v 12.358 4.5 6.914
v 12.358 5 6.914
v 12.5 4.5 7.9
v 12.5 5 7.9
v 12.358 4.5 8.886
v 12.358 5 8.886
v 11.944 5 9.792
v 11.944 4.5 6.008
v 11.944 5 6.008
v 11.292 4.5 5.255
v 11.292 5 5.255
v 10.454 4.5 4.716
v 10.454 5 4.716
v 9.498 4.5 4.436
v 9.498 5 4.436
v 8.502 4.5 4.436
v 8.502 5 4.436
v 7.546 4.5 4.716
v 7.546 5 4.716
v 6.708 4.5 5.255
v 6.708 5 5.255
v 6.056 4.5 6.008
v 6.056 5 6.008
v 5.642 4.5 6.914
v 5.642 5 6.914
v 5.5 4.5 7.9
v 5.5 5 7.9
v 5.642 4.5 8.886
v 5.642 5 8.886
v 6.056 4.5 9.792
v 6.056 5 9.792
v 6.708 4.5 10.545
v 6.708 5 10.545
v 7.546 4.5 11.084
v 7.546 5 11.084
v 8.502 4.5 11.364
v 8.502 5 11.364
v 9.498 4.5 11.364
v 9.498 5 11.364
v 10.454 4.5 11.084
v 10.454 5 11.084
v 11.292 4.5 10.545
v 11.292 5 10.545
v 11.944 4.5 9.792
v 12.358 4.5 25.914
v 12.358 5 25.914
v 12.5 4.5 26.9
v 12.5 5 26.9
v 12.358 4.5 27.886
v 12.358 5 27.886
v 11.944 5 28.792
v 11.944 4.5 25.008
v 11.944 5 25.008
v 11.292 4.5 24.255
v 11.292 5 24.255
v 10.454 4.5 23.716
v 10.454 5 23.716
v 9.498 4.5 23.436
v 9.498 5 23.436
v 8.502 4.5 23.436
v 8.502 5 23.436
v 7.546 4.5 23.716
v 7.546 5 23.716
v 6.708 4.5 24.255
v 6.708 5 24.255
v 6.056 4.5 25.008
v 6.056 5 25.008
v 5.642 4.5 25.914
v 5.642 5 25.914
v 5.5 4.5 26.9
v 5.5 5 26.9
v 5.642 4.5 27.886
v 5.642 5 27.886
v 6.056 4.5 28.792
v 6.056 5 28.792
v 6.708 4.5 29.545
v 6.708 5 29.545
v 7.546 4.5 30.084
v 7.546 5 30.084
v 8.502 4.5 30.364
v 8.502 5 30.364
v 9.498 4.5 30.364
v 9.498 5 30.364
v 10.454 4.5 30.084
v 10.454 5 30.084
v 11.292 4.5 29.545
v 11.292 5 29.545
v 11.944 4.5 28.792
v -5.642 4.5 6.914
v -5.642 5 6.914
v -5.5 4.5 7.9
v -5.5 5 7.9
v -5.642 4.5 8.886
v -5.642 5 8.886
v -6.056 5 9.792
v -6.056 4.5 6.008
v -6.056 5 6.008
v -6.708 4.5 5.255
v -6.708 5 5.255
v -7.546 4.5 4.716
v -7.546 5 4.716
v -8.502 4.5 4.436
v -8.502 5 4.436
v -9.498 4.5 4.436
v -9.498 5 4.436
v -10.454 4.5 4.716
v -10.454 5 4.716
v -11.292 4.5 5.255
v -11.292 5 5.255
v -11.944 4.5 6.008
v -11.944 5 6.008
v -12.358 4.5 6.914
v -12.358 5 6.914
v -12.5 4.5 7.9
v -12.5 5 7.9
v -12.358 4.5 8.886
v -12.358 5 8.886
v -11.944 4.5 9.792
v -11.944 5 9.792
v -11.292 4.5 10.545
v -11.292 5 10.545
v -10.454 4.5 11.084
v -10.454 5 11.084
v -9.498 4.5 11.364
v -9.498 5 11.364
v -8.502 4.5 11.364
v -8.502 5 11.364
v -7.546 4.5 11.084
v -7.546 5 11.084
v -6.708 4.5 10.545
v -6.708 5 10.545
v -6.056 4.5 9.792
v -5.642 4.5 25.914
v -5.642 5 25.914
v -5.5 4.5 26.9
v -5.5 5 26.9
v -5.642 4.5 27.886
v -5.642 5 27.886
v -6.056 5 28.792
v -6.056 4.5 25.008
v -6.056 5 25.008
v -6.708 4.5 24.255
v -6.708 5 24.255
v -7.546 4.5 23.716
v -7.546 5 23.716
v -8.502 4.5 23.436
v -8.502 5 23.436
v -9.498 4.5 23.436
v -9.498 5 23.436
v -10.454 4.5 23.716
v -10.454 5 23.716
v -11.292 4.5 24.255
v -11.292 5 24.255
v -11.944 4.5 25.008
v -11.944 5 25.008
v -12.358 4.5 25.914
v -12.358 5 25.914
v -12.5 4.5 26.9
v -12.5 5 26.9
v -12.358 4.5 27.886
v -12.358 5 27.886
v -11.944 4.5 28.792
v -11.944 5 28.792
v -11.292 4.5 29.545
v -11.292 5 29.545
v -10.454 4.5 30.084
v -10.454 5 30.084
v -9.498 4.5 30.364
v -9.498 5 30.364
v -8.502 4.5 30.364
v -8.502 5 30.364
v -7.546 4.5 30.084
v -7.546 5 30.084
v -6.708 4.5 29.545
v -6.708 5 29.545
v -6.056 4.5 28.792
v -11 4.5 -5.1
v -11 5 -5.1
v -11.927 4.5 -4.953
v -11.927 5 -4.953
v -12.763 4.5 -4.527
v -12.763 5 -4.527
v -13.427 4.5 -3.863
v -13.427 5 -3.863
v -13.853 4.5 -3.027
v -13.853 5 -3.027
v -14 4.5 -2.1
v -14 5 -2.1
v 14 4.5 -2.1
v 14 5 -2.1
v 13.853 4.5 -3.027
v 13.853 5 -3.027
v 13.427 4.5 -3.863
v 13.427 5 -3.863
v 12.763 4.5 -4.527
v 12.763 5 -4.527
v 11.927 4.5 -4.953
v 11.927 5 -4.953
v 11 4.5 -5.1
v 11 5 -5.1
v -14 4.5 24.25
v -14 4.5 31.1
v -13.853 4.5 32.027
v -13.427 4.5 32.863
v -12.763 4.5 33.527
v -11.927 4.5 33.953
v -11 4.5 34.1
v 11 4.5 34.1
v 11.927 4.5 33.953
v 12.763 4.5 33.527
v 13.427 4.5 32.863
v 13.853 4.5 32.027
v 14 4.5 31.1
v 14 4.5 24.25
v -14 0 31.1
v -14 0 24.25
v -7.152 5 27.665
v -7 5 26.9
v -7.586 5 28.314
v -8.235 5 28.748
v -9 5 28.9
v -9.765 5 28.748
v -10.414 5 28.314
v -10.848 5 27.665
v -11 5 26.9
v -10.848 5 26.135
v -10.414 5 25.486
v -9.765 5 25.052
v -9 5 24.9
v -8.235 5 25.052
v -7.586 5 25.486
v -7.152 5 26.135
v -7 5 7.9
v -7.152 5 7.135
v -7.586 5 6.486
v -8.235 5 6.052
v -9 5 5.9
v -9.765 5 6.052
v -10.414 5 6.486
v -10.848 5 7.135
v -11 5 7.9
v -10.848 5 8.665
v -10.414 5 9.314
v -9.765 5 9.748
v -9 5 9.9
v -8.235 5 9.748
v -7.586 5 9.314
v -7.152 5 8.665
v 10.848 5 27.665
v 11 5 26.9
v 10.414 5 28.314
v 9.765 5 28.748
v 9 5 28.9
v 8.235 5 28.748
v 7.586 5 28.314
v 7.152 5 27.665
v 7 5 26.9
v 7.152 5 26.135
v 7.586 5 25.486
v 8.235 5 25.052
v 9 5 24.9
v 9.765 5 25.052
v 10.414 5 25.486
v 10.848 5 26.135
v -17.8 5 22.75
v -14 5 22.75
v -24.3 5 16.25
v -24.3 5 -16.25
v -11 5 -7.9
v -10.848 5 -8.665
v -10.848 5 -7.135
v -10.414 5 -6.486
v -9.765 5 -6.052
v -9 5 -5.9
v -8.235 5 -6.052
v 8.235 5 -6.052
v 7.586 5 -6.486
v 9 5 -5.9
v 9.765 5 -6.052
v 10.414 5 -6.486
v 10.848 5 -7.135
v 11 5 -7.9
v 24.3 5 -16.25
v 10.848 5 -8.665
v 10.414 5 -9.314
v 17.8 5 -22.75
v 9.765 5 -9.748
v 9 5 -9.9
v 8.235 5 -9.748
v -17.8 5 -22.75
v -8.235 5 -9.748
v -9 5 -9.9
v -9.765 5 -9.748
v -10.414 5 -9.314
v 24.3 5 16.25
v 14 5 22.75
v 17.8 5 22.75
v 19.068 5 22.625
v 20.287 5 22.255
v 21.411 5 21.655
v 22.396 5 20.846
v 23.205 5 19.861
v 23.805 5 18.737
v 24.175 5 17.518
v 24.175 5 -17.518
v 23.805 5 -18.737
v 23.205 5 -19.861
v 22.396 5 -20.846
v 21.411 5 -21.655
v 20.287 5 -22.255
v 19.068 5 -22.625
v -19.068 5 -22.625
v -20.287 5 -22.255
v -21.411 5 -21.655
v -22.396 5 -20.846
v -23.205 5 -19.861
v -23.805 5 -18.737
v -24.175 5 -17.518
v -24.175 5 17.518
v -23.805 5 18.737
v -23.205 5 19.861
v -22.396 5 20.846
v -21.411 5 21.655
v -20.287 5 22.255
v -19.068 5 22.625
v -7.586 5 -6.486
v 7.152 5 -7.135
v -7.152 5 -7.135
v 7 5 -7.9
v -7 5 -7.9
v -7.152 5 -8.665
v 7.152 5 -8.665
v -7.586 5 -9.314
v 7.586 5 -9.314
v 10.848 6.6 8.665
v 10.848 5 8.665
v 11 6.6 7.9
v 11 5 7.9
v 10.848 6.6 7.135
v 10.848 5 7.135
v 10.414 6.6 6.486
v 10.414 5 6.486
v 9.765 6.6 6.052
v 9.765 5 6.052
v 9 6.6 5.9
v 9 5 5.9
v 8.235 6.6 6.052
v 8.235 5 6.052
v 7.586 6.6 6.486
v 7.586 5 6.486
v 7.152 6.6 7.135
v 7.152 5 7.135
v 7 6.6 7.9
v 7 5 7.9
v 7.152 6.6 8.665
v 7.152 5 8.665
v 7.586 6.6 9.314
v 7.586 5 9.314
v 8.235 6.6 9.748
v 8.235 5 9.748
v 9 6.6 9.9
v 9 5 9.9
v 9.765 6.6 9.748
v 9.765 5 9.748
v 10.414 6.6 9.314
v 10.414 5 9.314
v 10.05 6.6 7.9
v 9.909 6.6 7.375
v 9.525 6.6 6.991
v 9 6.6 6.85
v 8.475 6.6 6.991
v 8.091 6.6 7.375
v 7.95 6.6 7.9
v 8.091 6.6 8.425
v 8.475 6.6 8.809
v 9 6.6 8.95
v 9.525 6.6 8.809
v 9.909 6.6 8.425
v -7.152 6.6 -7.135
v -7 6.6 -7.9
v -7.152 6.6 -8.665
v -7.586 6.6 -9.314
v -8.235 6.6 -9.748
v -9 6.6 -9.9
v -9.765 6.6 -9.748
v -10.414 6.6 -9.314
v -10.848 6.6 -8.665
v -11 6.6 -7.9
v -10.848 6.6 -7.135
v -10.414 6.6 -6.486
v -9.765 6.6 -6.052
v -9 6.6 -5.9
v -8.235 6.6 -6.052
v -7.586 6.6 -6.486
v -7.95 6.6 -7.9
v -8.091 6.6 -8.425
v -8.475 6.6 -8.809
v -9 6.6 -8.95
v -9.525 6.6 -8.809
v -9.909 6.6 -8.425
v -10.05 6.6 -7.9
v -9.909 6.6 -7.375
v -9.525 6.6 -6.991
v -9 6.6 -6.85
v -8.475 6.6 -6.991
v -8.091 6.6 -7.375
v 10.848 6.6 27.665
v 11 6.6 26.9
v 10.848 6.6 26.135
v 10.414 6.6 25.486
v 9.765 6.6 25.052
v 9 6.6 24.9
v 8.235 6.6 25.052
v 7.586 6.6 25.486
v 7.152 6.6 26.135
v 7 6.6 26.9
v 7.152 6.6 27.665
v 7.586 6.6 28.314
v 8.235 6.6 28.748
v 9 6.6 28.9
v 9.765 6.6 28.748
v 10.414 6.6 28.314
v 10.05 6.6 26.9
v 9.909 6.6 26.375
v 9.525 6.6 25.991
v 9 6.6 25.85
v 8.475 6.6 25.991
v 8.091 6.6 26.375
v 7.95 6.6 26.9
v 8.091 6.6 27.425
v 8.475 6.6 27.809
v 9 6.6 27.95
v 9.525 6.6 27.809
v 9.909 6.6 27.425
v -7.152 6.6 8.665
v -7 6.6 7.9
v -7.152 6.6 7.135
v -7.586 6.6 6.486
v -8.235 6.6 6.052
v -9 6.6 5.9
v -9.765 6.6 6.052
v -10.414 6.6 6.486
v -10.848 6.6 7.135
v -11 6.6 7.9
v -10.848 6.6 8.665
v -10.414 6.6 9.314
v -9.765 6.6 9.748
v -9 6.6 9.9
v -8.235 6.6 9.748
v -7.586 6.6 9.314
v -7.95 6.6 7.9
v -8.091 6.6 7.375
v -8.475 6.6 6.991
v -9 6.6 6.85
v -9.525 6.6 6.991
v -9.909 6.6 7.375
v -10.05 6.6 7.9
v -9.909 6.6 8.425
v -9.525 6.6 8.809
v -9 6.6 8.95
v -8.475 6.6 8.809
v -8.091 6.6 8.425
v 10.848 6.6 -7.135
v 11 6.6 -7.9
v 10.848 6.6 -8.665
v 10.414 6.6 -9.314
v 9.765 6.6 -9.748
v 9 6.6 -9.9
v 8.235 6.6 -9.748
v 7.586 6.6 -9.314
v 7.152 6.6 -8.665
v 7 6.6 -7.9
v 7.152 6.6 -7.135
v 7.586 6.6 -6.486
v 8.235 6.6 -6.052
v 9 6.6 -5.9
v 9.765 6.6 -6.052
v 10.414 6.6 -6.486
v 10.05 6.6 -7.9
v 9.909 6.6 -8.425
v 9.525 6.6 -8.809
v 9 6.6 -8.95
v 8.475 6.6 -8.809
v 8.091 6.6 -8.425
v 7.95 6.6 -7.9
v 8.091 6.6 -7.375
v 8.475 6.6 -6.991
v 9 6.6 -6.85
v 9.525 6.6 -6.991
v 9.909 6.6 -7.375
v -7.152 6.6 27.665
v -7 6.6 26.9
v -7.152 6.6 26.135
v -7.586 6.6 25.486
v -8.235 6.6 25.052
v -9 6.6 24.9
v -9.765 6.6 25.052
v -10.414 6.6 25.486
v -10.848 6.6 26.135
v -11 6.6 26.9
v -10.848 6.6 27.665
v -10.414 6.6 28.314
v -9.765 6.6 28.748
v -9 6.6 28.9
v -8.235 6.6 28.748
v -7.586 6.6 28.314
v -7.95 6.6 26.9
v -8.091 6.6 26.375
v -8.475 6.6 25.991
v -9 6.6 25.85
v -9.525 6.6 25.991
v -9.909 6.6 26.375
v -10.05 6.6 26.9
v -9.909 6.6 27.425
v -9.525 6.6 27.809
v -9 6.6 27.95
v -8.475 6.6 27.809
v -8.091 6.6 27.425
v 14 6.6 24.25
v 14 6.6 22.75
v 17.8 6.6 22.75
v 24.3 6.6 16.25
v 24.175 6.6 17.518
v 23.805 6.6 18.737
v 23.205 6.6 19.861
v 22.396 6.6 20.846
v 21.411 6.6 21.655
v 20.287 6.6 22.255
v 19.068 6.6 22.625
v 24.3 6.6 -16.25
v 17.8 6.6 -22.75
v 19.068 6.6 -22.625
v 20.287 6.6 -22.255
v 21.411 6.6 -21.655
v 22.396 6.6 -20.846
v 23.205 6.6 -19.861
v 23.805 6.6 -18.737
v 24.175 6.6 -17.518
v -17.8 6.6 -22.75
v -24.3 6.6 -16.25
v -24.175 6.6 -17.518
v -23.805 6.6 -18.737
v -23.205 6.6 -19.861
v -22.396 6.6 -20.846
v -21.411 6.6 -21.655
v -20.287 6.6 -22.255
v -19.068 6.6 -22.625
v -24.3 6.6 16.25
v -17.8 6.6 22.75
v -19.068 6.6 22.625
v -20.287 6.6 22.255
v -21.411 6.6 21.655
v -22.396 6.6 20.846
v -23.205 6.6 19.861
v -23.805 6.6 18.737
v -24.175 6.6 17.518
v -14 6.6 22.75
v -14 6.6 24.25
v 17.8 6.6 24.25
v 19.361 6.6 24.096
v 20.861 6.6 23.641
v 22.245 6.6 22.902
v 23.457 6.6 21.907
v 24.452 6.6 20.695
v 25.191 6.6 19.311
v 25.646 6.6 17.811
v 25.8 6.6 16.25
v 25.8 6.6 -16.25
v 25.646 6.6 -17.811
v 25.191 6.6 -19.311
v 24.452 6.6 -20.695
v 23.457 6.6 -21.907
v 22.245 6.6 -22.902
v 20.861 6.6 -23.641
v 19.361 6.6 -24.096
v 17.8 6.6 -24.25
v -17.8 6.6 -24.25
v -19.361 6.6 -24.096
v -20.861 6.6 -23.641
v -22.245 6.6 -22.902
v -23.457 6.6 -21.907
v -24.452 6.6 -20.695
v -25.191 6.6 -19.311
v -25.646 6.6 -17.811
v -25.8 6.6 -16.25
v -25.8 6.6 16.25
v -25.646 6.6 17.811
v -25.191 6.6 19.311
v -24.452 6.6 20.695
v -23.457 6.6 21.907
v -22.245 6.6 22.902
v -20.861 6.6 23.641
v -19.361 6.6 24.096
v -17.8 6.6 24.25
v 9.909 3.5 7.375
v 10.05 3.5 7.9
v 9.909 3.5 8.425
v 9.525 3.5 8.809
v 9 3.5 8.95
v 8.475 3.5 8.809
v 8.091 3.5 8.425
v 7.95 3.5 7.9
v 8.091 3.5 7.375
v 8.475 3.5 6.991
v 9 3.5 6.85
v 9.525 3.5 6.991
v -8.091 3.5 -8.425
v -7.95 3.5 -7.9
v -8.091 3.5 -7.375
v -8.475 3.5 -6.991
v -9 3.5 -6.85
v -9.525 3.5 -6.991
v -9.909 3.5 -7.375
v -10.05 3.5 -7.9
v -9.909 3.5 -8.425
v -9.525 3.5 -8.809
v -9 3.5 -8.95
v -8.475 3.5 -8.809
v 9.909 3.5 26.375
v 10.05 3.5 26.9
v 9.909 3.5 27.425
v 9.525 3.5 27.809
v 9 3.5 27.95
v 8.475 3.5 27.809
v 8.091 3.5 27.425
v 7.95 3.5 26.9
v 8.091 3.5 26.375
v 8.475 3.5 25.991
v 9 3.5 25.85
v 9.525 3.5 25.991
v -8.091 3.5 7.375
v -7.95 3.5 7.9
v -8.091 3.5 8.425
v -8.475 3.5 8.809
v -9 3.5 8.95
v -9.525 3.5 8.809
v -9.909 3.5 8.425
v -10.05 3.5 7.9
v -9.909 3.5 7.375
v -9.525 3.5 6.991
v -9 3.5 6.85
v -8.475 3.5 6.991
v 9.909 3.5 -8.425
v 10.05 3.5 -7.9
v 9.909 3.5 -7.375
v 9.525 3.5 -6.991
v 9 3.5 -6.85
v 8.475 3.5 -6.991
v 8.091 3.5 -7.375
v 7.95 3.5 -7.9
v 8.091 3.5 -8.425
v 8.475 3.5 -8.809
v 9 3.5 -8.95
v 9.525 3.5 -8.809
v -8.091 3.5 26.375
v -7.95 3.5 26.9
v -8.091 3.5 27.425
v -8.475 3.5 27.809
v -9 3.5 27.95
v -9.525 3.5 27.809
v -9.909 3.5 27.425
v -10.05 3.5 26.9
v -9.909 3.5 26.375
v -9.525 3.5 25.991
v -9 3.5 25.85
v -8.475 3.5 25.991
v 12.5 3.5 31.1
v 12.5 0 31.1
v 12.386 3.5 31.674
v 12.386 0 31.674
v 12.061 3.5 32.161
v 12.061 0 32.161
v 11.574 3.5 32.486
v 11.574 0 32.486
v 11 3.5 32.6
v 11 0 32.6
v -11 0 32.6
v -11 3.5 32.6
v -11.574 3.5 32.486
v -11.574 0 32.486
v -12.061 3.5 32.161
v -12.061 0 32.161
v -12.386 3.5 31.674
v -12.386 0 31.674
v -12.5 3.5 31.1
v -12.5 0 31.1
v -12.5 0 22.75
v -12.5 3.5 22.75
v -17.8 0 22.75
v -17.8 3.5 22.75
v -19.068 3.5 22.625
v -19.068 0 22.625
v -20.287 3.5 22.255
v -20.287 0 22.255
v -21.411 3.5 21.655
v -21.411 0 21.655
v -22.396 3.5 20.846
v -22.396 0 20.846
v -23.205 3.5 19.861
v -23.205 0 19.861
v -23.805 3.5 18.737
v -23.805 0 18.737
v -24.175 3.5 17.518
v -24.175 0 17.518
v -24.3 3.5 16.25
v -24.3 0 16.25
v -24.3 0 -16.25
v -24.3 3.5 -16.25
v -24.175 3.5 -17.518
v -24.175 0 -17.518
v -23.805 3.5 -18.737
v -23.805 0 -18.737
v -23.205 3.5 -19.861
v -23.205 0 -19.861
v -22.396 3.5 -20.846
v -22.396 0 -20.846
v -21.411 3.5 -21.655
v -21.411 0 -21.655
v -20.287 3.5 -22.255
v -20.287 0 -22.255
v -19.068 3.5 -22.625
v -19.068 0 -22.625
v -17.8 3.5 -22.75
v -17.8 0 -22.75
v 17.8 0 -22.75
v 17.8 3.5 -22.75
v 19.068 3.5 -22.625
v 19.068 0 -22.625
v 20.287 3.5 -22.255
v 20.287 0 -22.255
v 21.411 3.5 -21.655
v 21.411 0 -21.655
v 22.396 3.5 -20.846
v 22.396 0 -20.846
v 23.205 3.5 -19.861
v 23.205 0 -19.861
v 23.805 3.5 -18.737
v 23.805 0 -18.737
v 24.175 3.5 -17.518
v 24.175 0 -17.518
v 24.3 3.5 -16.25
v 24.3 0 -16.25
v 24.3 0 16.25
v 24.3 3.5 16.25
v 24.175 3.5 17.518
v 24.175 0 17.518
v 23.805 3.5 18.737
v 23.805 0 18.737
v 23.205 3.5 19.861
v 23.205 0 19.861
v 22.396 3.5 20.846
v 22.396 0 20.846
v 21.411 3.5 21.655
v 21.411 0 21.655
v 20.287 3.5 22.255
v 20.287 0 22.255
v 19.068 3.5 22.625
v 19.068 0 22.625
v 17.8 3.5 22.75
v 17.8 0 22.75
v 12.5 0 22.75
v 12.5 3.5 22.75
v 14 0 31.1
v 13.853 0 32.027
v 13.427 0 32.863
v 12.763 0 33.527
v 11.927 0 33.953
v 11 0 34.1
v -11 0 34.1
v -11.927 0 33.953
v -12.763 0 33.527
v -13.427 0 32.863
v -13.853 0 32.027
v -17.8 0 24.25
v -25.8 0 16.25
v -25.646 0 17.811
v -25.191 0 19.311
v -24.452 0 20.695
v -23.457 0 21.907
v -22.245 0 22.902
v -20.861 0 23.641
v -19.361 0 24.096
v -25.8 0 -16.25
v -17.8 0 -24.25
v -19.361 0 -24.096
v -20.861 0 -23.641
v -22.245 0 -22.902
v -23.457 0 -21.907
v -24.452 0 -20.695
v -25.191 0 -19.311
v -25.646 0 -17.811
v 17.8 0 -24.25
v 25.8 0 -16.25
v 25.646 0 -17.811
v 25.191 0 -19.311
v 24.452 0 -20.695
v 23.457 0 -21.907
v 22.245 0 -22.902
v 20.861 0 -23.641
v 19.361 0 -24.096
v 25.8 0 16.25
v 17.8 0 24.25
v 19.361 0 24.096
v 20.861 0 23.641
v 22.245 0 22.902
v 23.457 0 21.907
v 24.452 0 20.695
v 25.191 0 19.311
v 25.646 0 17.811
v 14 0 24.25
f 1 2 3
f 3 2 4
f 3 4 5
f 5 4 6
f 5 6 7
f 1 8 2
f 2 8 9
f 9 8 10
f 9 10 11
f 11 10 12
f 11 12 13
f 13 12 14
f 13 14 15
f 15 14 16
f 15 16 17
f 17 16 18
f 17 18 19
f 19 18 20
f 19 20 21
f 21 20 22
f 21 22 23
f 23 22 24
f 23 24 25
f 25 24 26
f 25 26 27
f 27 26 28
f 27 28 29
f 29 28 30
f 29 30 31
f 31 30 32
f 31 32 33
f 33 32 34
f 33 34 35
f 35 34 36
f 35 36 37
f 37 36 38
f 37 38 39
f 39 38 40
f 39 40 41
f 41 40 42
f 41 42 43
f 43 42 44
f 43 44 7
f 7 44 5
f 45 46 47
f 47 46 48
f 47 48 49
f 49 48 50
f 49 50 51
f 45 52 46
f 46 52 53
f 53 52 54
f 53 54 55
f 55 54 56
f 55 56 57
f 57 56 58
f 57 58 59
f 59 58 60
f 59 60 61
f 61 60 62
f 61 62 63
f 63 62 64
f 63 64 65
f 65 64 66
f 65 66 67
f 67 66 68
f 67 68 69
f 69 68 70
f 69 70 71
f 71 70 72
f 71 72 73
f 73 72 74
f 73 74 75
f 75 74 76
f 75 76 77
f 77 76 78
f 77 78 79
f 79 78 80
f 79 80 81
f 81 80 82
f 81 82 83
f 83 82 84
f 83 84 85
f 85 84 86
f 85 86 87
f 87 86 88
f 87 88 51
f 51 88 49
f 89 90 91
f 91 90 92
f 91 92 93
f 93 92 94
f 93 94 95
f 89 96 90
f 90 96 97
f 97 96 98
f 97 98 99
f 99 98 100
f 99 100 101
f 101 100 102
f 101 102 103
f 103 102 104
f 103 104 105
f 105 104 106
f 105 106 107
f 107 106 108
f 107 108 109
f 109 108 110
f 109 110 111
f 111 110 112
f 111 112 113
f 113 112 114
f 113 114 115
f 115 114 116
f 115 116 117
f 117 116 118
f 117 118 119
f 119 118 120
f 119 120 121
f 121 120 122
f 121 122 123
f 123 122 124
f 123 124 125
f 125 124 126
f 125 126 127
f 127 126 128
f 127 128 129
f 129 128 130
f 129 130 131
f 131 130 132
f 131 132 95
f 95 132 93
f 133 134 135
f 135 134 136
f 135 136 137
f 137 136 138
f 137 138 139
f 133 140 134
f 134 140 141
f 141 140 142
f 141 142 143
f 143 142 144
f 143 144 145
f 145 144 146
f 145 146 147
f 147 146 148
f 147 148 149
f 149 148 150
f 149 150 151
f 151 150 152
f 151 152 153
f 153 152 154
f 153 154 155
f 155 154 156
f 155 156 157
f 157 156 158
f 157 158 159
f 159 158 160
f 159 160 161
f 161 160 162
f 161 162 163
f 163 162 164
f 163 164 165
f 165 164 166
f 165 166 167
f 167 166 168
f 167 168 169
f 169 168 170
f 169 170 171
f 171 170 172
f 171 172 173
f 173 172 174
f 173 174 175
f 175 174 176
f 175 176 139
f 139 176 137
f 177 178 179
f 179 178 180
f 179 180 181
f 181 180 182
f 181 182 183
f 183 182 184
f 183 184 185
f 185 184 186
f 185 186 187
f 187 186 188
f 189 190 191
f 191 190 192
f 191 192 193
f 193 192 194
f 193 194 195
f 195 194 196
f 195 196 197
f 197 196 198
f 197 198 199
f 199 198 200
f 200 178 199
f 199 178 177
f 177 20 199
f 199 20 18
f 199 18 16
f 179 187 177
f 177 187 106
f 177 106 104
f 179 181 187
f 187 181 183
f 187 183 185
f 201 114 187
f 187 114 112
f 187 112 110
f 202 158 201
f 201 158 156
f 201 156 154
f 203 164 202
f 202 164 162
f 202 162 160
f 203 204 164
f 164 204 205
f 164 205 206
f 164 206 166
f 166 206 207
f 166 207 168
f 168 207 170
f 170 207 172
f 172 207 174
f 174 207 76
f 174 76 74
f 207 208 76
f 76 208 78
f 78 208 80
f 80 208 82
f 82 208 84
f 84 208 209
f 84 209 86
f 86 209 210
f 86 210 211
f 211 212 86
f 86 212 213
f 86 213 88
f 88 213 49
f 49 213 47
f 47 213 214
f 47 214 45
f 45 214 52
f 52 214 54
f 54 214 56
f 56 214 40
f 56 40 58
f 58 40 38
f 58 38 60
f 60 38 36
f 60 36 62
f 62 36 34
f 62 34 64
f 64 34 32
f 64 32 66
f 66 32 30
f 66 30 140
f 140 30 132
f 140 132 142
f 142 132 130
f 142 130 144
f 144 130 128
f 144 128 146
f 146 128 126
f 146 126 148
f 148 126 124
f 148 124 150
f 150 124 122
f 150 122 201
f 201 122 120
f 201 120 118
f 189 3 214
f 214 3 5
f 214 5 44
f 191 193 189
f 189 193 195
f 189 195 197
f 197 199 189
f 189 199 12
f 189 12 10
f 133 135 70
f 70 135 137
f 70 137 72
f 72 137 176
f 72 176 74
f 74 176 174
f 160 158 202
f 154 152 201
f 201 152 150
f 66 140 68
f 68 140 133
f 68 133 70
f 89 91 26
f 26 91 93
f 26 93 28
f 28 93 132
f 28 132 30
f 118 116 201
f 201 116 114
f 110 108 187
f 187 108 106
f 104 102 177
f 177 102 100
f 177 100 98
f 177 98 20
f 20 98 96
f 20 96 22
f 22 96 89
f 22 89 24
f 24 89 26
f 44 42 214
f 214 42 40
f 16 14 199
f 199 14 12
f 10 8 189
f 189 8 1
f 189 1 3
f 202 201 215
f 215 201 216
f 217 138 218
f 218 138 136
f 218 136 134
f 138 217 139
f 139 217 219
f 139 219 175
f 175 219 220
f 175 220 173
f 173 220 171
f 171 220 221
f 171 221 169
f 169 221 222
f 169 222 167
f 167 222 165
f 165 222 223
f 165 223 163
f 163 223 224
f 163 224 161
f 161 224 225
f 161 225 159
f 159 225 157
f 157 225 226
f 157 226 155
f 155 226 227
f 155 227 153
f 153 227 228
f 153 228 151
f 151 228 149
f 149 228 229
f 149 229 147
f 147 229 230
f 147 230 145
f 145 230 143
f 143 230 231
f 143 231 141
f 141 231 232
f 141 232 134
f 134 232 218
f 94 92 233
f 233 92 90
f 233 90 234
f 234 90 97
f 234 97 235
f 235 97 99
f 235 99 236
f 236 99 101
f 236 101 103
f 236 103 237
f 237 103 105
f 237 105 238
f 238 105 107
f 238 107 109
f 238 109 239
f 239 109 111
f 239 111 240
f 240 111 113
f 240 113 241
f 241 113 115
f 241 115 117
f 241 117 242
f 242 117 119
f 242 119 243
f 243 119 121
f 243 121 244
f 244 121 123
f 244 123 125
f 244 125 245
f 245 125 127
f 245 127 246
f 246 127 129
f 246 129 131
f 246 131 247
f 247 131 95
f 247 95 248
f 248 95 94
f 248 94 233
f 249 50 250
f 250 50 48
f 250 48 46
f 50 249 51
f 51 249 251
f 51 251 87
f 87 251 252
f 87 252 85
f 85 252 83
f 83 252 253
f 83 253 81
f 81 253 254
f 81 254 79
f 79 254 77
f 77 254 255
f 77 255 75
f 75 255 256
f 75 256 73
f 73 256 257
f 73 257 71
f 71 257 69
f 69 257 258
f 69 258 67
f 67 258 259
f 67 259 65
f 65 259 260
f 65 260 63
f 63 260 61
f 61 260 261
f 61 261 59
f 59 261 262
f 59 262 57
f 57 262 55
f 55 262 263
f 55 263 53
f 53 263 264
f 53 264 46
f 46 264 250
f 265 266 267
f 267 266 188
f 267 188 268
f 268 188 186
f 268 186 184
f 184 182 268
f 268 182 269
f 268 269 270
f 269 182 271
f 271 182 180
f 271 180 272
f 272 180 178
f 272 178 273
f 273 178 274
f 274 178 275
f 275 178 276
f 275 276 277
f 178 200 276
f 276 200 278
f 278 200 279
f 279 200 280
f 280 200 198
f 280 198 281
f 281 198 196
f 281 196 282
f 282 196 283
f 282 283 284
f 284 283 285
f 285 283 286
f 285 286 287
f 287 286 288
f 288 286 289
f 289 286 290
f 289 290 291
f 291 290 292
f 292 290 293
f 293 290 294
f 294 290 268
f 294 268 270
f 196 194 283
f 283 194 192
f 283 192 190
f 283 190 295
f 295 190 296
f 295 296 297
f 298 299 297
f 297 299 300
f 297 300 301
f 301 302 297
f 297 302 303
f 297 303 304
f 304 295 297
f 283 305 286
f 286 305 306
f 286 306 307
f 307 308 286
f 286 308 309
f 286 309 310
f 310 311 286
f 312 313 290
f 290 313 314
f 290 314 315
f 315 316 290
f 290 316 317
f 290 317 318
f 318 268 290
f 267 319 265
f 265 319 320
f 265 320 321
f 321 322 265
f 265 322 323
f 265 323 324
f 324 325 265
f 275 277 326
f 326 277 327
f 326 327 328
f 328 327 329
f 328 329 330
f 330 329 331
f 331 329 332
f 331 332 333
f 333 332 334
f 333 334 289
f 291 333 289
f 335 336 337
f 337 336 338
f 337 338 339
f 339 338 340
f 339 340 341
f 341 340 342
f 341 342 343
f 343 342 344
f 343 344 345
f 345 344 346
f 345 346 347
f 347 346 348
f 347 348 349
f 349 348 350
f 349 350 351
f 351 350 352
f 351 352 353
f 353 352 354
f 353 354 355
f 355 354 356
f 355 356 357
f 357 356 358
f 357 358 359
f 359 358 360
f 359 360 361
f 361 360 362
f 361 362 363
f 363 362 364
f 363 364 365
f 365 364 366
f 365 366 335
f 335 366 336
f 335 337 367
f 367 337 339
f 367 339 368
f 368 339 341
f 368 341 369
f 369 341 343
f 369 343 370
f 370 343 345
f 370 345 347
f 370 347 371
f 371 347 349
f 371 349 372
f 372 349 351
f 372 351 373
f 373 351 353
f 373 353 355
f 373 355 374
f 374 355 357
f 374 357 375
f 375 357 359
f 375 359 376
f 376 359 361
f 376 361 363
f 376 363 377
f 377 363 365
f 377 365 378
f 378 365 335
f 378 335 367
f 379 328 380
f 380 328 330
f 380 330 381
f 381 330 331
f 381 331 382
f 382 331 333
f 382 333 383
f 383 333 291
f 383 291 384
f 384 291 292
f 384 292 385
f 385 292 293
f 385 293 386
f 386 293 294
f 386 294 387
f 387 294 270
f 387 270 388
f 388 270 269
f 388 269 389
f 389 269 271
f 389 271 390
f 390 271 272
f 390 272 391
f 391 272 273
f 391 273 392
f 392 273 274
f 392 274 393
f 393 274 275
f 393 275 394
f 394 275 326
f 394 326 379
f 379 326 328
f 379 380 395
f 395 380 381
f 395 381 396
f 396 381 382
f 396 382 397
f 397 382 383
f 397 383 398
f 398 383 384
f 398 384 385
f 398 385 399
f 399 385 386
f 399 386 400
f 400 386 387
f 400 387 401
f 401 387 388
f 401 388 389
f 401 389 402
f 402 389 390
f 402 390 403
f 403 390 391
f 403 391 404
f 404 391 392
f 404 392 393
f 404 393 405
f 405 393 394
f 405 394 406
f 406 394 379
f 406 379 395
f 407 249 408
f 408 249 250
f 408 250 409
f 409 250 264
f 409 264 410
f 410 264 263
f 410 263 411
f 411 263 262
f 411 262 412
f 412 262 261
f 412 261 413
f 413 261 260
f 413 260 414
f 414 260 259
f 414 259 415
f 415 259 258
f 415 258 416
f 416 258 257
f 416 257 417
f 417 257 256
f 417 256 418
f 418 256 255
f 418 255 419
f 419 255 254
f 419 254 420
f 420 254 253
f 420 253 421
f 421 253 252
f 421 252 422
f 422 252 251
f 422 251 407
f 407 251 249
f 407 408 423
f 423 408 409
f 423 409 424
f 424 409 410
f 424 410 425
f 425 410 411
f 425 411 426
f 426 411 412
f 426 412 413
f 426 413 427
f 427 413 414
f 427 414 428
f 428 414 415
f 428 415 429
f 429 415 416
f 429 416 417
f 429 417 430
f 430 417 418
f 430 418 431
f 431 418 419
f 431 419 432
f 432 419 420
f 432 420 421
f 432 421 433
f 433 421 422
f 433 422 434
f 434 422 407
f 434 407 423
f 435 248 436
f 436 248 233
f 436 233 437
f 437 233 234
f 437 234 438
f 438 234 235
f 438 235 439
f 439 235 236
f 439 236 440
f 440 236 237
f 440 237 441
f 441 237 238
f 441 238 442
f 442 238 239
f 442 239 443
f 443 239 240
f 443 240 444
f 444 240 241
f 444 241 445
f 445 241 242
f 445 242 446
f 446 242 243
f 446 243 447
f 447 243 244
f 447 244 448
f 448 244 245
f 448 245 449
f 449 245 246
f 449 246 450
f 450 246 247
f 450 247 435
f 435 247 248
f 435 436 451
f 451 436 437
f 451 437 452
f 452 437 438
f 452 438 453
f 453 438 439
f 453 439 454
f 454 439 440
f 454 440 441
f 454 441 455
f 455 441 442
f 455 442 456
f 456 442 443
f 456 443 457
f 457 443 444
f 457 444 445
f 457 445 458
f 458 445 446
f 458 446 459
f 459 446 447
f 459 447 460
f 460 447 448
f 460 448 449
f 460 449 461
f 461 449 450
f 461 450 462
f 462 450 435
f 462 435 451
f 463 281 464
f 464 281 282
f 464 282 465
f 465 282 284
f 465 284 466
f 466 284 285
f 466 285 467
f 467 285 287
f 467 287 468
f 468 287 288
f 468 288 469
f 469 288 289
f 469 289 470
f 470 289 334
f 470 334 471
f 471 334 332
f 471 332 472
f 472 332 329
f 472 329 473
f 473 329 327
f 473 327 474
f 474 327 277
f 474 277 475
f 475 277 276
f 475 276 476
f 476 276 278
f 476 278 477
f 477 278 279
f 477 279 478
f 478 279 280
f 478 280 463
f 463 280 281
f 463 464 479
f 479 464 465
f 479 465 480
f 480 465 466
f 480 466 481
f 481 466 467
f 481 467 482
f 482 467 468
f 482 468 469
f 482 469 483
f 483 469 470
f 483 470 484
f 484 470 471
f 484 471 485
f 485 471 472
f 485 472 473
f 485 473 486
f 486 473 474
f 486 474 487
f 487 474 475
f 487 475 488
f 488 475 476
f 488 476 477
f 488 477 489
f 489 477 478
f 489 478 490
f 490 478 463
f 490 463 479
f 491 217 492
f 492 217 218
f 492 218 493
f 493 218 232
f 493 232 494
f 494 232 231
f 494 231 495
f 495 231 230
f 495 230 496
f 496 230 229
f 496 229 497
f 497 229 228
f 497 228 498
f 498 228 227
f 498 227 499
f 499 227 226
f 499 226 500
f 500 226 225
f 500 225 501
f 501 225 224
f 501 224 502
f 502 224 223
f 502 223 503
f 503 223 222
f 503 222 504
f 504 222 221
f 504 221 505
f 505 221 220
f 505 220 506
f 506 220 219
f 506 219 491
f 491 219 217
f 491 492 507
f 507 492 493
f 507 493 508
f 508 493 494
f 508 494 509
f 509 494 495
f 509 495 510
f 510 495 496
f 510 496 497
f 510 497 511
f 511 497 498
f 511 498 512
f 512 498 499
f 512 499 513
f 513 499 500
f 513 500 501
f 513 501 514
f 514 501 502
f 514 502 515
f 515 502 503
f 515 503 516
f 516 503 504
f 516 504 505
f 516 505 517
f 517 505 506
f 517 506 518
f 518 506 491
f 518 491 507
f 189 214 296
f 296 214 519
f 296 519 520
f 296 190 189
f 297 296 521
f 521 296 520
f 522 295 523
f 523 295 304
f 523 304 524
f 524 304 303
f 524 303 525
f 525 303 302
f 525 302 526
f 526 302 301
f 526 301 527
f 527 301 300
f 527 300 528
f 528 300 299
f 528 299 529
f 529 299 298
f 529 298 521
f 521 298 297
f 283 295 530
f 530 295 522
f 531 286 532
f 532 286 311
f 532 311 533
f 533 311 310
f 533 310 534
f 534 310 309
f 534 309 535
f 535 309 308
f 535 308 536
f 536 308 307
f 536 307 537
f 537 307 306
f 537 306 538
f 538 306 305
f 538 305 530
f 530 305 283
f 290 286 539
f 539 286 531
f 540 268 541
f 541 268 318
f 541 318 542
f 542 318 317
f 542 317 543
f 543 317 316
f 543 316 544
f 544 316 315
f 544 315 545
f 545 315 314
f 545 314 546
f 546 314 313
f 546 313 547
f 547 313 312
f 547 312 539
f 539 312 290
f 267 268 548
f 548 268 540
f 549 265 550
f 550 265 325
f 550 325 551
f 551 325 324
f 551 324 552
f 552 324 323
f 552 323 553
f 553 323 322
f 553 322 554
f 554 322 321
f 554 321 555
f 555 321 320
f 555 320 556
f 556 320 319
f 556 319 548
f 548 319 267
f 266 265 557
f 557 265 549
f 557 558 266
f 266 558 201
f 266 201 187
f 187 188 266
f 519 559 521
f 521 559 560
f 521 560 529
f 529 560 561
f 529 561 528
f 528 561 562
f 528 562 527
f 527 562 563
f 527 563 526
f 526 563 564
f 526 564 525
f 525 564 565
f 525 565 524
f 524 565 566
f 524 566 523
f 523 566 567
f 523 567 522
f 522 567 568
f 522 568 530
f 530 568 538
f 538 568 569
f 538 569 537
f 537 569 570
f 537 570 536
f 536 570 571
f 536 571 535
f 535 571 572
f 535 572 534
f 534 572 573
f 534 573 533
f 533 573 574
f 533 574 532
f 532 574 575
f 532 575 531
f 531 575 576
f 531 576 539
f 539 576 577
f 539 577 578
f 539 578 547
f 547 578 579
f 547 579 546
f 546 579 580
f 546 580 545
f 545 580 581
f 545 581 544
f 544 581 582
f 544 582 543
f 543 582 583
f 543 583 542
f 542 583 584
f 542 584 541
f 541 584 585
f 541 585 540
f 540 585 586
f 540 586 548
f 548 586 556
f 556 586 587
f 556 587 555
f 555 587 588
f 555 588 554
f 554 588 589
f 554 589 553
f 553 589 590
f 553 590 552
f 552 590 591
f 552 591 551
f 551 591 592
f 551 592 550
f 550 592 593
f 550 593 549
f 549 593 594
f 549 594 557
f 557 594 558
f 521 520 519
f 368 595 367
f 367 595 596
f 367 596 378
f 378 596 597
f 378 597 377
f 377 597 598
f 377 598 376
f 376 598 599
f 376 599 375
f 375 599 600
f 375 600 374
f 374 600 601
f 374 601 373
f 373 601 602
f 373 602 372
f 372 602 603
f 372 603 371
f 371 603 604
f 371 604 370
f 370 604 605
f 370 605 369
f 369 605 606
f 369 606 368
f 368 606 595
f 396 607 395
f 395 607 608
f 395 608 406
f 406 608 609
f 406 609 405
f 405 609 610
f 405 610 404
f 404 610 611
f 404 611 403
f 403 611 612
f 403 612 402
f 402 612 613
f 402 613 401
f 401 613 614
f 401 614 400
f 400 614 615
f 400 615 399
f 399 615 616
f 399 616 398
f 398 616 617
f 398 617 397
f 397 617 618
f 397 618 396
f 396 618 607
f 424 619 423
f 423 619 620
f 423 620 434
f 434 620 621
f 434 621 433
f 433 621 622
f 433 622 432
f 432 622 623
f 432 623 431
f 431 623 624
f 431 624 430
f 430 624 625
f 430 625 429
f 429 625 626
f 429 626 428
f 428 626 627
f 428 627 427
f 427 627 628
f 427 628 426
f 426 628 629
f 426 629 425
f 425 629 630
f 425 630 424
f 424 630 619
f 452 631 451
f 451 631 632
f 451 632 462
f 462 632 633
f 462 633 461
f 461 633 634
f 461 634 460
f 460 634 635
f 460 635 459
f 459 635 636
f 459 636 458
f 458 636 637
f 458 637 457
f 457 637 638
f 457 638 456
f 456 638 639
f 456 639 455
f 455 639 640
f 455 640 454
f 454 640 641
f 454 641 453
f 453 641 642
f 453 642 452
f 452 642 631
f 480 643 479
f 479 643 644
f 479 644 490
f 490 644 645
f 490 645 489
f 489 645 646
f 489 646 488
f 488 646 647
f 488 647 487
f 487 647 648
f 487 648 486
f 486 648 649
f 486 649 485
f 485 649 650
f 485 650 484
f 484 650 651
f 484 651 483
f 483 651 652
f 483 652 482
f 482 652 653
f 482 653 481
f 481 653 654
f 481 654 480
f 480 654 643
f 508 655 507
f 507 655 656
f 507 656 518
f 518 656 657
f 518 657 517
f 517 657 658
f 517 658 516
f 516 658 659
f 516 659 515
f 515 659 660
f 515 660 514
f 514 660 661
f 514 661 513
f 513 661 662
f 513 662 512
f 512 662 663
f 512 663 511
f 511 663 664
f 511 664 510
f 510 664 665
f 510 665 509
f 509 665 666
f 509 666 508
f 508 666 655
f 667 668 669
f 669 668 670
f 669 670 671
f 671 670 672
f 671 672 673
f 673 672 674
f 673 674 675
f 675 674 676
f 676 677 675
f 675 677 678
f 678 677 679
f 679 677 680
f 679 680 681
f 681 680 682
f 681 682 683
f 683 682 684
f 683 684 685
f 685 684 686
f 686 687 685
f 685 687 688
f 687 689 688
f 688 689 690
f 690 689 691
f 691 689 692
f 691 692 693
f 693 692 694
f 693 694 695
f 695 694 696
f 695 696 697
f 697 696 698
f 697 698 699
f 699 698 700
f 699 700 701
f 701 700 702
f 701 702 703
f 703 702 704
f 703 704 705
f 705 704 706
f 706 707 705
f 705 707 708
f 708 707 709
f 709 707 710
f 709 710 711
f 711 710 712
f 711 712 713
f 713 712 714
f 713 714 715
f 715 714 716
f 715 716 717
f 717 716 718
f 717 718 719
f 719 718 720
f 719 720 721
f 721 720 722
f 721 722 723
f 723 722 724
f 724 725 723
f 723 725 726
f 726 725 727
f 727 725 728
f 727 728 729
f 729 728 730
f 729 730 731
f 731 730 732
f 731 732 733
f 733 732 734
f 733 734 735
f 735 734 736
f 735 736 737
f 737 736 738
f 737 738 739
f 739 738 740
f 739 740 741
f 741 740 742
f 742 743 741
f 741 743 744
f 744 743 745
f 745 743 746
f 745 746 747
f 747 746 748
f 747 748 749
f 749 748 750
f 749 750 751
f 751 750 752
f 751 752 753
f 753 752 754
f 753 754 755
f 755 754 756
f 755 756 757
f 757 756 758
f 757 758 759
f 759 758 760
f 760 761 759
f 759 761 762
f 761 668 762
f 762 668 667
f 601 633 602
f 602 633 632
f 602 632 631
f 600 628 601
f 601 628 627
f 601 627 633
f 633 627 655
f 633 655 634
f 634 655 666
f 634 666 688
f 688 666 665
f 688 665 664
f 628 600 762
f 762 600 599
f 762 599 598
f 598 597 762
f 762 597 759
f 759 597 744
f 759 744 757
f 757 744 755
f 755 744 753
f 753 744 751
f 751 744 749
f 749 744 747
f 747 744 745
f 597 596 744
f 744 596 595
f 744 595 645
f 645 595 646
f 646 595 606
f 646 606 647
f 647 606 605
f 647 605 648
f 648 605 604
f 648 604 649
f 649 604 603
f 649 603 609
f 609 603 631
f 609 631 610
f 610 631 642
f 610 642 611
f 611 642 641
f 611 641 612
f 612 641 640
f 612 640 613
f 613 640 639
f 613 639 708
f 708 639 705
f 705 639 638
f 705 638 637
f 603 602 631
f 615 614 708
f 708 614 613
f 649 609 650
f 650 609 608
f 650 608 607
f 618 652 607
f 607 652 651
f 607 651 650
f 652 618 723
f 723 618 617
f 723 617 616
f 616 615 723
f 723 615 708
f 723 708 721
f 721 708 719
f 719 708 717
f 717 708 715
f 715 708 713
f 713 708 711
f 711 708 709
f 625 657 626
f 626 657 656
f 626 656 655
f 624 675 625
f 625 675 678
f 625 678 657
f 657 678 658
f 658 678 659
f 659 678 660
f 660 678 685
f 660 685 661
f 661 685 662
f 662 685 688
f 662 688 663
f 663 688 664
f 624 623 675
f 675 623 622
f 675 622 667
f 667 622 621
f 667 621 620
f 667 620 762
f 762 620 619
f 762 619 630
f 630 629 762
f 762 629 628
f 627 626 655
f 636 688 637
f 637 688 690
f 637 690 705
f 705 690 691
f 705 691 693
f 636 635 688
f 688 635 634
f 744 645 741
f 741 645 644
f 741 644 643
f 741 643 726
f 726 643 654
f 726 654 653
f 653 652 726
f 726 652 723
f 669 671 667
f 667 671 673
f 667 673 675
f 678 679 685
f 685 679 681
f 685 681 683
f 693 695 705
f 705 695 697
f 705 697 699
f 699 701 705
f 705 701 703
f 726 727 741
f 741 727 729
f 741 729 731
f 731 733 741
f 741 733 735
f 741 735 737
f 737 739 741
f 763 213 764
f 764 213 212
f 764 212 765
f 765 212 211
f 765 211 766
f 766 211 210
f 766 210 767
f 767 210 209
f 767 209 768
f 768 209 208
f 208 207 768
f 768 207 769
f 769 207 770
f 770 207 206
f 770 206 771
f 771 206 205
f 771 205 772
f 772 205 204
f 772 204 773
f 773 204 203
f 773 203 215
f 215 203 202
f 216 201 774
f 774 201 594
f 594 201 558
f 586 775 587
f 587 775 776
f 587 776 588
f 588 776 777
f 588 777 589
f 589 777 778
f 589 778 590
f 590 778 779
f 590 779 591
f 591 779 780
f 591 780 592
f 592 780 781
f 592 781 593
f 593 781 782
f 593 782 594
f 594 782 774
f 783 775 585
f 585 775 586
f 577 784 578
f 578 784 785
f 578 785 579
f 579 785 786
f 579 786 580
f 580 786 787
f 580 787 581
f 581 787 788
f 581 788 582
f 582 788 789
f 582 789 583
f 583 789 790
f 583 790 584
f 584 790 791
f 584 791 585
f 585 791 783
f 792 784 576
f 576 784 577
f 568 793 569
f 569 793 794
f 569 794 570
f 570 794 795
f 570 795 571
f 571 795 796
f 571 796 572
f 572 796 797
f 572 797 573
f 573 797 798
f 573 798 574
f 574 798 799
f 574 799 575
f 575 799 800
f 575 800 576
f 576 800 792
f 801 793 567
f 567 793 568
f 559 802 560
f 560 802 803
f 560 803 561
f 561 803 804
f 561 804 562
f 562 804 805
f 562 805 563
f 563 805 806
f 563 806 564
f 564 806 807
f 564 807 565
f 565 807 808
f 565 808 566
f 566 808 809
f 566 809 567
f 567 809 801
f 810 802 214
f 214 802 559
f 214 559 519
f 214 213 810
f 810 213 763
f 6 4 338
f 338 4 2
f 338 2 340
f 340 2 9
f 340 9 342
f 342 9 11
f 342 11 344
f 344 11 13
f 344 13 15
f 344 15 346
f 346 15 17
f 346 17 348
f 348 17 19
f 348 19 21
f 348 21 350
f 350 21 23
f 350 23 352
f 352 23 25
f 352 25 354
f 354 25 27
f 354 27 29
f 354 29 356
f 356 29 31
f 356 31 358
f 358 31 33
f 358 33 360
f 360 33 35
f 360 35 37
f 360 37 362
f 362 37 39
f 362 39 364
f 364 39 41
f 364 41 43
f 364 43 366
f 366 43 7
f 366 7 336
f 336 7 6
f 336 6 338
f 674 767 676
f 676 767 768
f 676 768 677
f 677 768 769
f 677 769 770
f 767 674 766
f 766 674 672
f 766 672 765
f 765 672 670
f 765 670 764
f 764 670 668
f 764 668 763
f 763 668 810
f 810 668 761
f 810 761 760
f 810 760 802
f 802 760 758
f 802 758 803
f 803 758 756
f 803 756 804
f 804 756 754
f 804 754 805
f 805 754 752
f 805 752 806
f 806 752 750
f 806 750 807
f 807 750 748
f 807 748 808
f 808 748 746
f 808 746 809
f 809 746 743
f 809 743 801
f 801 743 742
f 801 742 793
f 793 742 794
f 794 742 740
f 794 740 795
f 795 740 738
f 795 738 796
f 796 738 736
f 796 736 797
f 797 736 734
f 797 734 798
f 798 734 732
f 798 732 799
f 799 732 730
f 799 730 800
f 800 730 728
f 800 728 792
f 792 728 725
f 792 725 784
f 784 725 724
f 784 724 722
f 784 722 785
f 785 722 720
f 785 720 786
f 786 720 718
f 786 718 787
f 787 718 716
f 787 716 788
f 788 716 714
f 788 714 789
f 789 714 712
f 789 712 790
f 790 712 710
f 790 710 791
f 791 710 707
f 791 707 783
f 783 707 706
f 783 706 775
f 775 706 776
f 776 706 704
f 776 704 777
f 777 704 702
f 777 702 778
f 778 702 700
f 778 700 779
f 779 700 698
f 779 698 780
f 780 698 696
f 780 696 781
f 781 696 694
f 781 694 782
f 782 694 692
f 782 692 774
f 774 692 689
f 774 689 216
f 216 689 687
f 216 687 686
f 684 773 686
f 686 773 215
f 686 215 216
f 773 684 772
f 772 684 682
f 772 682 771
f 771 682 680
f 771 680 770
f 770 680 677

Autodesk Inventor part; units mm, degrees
ref_plane "YZ Plane" through (0, 0, 0) normal (1, 0, 0) x (0, 1, 0)
ref_plane "XZ Plane" through (0, 0, 0) normal (0, 1, 0) x (-1, 0, 0)
ref_plane "XY Plane" through (0, 0, 0) normal (0, 0, 1) x (1, 0, 0)
sketch "Sketch1" plane through (0, 0, 0) normal (0, 1, 0) x (-1, 0, 0)
  line L0 (17.8, 24.25) -> (-17.8, 24.25)
  line L1 (-25.8, 16.25) -> (-25.8, -16.25)
  line L2 (-17.8, -24.25) -> (17.8, -24.25)
  line L3 (25.8, -16.25) -> (25.8, 16.25)
  line L4 (25.8, 24.25) -> (-25.8, -24.25) construction
  line L5 (-25.8, 24.25) -> (25.8, -24.25) construction
  line L6 (14, 24.25) -> (-14, 24.25)
  line L7 (-14, 24.25) -> (-14, 31.1)
  line L8 (-11, 34.1) -> (11, 34.1)
  line L9 (14, 31.1) -> (14, 24.25)
  line L10 (0, -38.0325) -> (0, 46.847) projected
  arc A0 (14, 31.1) -> (11, 34.1) centre (11, 31.1) ccw
  arc A1 (-11, 34.1) -> (-14, 31.1) centre (-11, 31.1) ccw
  arc A2 (17.8, -24.25) -> (25.8, -16.25) centre (17.8, -16.25) ccw
  arc A3 (-25.8, -16.25) -> (-17.8, -24.25) centre (-17.8, -16.25) ccw
  arc A4 (-17.8, 24.25) -> (-25.8, 16.25) centre (-17.8, 16.25) ccw
  arc A5 (25.8, 16.25) -> (17.8, 24.25) centre (17.8, 16.25) ccw
  point P0 (0, 0)
  point P1 (-14, 34.1)
  dimension "d0" = 48.5
  dimension "d1" = 51.6
  dimension "d2" = 9.85
  dimension "d3" = 28
  dimension "d5" = 3
  dimension "d10" = 8
extrude "Extrusion1" add sketch "Sketch1" along normal blind 5
shell "Shell1" thickness 1.5 removed faces 1 at (4.6667, 0, -8.0833)
sketch "Sketch2" plane through (0, 5, 0) normal (0, 1, 0) x (1, 0, 0)
  circle A0 centre (-9, -7.9) radius 1.05
  circle A1 centre (9, -7.9) radius 1.05
  circle A2 centre (-9, 7.9) radius 1.05
  circle A3 centre (9, 7.9) radius 1.05
  line L0 (-36.12, 0) -> (36.12, 0) projected
  line L1 (0, 35.92) -> (0, -45.77) projected
  circle A4 centre (-9, -26.9) radius 1.05
  circle A5 centre (9, -26.9) radius 1.05
  point P0 (0, 0)
  dimension "d11" = 2.1
  dimension "d12" = 18
  dimension "d13" = 15.8
  dimension "d14" = 19
extrude "Extrusion2" cut sketch "Sketch2" against normal through all
sketch "Sketch3" plane through (0, 5, 0) normal (0, 1, 0) x (1, 0, 0)
  circle A0 centre (9, -7.9) radius 1.05 projected
  circle A1 centre (-9, 7.9) radius 1.05 projected
  circle A2 centre (9, -26.9) radius 1.05 projected
  circle A3 centre (-9, -7.9) radius 1.05 projected
  circle A4 centre (9, 7.9) radius 1.05 projected
  circle A5 centre (-9, -26.9) radius 1.05 projected
  arc A6 (11, -34.1) -> (14, -31.1) centre (11, -31.1) ccw projected
  line L0 (11, -34.1) -> (-11, -34.1) projected
  arc A7 (-14, -31.1) -> (-11, -34.1) centre (-11, -31.1) ccw projected
  line L1 (-14, -31.1) -> (-14, -24.25) projected
  line L2 (-14, -24.25) -> (-17.8, -24.25) projected
  arc A8 (-25.8, -16.25) -> (-17.8, -24.25) centre (-17.8, -16.25) ccw projected
  line L3 (-25.8, -16.25) -> (-25.8, 16.25) projected
  arc A9 (-17.8, 24.25) -> (-25.8, 16.25) centre (-17.8, 16.25) ccw projected
  line L4 (-17.8, 24.25) -> (17.8, 24.25) projected
  arc A10 (25.8, 16.25) -> (17.8, 24.25) centre (17.8, 16.25) ccw projected
  line L5 (25.8, 16.25) -> (25.8, -16.25) projected
  arc A11 (17.8, -24.25) -> (25.8, -16.25) centre (17.8, -16.25) ccw projected
  line L6 (17.8, -24.25) -> (14, -24.25) projected
  line L7 (14, -24.25) -> (14, -31.1) projected
  line L8 (-24.3, 16.25) -> (-24.3, -16.25)
  arc A12 (-24.3, -16.25) -> (-17.8, -22.75) centre (-17.8, -16.25) ccw
  line L9 (-17.8, -22.75) -> (-12.5, -22.75)
  line L10 (-12.5, -22.75) -> (-12.5, -31.1)
  arc A13 (-12.5, -31.1) -> (-11, -32.6) centre (-11, -31.1) ccw
  line L11 (-11, -32.6) -> (11, -32.6)
  arc A14 (11, -32.6) -> (12.5, -31.1) centre (11, -31.1) ccw
  line L12 (12.5, -31.1) -> (12.5, -22.75)
  line L13 (12.5, -22.75) -> (17.8, -22.75)
  arc A15 (17.8, -22.75) -> (24.3, -16.25) centre (17.8, -16.25) ccw
  line L14 (24.3, -16.25) -> (24.3, 16.25)
  arc A16 (24.3, 16.25) -> (17.8, 22.75) centre (17.8, 16.25) ccw
  line L15 (17.8, 22.75) -> (-17.8, 22.75)
  arc A17 (-17.8, 22.75) -> (-24.3, 16.25) centre (-17.8, 16.25) ccw
  line L16 (-14, -24.25) -> (-14, -22.75)
  line L17 (14, -24.25) -> (14, -22.75)
  point P0 (0, 0)
  dimension "d17" = 1.5
extrude "Extrusion3" add sketch "Sketch3" along normal blind 1.6 contours L17 L13 A15 L14 A16 L15 A17 L8 A12 L9 L16 L2 A8 L3 A9 L4 A10 L5 A11 L6
sketch "Sketch4" plane through (0, 5, 0) normal (0, 1, 0) x (1, 0, 0)
  circle A0 centre (-9, 7.9) radius 2
  circle A1 centre (9, 7.9) radius 2
  circle A2 centre (9, -7.9) radius 2
  circle A3 centre (-9, -7.9) radius 2
  circle A4 centre (-9, -26.9) radius 2
  circle A5 centre (9, -26.9) radius 2
  circle A6 centre (9, 7.9) radius 1.05 projected
  circle A7 centre (9, -7.9) radius 1.05 projected
  circle A8 centre (9, -26.9) radius 1.05 projected
  circle A9 centre (-9, -26.9) radius 1.05 projected
  circle A10 centre (-9, -7.9) radius 1.05 projected
  circle A11 centre (-9, 7.9) radius 1.05 projected
  point P0 (0, 0)
  dimension "d20" = 4
extrude "Extrusion4" add sketch "Sketch4" along normal blind 1.6
sketch "Sketch5" plane through (0, 5, 0) normal (0, 1, 0) x (1, 0, 0)
  line L0 (-11, -34.1) -> (11, -34.1) projected
  line L1 (0, 38.0325) -> (0, -46.847) projected
  circle A0 centre (-9, 7.9) radius 1.05 projected
  arc A1 (-14, -31.1) -> (-11, -34.1) centre (-11, -31.1) ccw projected
  circle A2 centre (9, -7.9) radius 2 projected
  circle A3 centre (-9, 7.9) radius 2 projected
  circle A4 centre (9, -26.9) radius 2 projected
  circle A5 centre (-9, -7.9) radius 2 projected
  circle A6 centre (9, 7.9) radius 2 projected
  circle A7 centre (-9, -26.9) radius 2 projected
  circle A8 centre (9, -7.9) radius 1.05 projected
  circle A9 centre (-9, 7.9) radius 1.05 projected
  circle A10 centre (9, -26.9) radius 1.05 projected
  circle A11 centre (-9, -7.9) radius 1.05 projected
  circle A12 centre (9, 7.9) radius 1.05 projected
  circle A13 centre (-9, -26.9) radius 1.05 projected
  line L2 (11, -34.1) -> (-11, -34.1) projected
  line L3 (-14, -31.1) -> (-14, -24.25) projected
  line L4 (-14, -22.75) -> (-14, -24.25) projected
  line L5 (-17.8, -22.75) -> (-14, -22.75) projected
  arc A14 (-24.3, -16.25) -> (-17.8, -22.75) centre (-17.8, -16.25) ccw projected
  line L6 (-24.3, 16.25) -> (-24.3, -16.25) projected
  arc A15 (-17.8, 22.75) -> (-24.3, 16.25) centre (-17.8, 16.25) ccw projected
  line L7 (17.8, 22.75) -> (-17.8, 22.75) projected
  arc A16 (24.3, 16.25) -> (17.8, 22.75) centre (17.8, 16.25) ccw projected
  line L8 (24.3, -16.25) -> (24.3, 16.25) projected
  arc A17 (17.8, -22.75) -> (24.3, -16.25) centre (17.8, -16.25) ccw projected
  line L9 (14, -22.75) -> (17.8, -22.75) projected
  line L10 (14, -24.25) -> (14, -22.75) projected
  line L11 (17.8, -24.25) -> (14, -24.25) projected
  arc A18 (17.8, -24.25) -> (25.8, -16.25) centre (17.8, -16.25) ccw projected
  line L12 (25.8, 16.25) -> (25.8, -16.25) projected
  arc A19 (25.8, 16.25) -> (17.8, 24.25) centre (17.8, 16.25) ccw projected
  line L13 (-17.8, 24.25) -> (17.8, 24.25) projected
  arc A20 (-17.8, 24.25) -> (-25.8, 16.25) centre (-17.8, 16.25) ccw projected
  line L14 (-25.8, -16.25) -> (-25.8, 16.25) projected
  arc A21 (-25.8, -16.25) -> (-17.8, -24.25) centre (-17.8, -16.25) ccw projected
  line L15 (-14, -24.25) -> (-17.8, -24.25) projected
  line L16 (14, -24.25) -> (14, -31.1) projected
  circle A22 centre (-9, -26.9) radius 3.5
  circle A23 centre (-9, -7.9) radius 3.5
  circle A24 centre (9, -7.9) radius 3.5
  circle A25 centre (9, -26.9) radius 3.5
  circle A26 centre (-9, 7.9) radius 2 projected
  arc A27 (11, -34.1) -> (14, -31.1) centre (11, -31.1) ccw projected
  arc A28 (-14, -31.1) -> (-11, -34.1) centre (-11, -31.1) ccw projected
  line L17 (-11, 5.1) -> (11, 5.1)
  line L18 (14, 2.1) -> (14, -31.1)
  line L19 (11, -34.1) -> (-11, -34.1)
  line L20 (-14, -31.1) -> (-14, 2.1)
  arc A29 (-14, -31.1) -> (-11, -34.1) centre (-11, -31.1) ccw
  arc A30 (11, -34.1) -> (14, -31.1) centre (11, -31.1) ccw
  arc A31 (14, 2.1) -> (11, 5.1) centre (11, 2.1) ccw
  arc A32 (-11, 5.1) -> (-14, 2.1) centre (-11, 2.1) ccw
  point P0 (0, 0)
  point P1 (0, -34.1)
  point P2 (14, -24.2498)
  dimension "d25" = 7
  dimension "d30" = 39.2
extrude "Extrusion5" cut sketch "Sketch5" against normal blind 0.5 contours A1 L3 L4 L20 A32 L17 L1 L0 | L1 L17 A31 L18 L10 L16 A27 L0
properties part number "Pin-Base"
